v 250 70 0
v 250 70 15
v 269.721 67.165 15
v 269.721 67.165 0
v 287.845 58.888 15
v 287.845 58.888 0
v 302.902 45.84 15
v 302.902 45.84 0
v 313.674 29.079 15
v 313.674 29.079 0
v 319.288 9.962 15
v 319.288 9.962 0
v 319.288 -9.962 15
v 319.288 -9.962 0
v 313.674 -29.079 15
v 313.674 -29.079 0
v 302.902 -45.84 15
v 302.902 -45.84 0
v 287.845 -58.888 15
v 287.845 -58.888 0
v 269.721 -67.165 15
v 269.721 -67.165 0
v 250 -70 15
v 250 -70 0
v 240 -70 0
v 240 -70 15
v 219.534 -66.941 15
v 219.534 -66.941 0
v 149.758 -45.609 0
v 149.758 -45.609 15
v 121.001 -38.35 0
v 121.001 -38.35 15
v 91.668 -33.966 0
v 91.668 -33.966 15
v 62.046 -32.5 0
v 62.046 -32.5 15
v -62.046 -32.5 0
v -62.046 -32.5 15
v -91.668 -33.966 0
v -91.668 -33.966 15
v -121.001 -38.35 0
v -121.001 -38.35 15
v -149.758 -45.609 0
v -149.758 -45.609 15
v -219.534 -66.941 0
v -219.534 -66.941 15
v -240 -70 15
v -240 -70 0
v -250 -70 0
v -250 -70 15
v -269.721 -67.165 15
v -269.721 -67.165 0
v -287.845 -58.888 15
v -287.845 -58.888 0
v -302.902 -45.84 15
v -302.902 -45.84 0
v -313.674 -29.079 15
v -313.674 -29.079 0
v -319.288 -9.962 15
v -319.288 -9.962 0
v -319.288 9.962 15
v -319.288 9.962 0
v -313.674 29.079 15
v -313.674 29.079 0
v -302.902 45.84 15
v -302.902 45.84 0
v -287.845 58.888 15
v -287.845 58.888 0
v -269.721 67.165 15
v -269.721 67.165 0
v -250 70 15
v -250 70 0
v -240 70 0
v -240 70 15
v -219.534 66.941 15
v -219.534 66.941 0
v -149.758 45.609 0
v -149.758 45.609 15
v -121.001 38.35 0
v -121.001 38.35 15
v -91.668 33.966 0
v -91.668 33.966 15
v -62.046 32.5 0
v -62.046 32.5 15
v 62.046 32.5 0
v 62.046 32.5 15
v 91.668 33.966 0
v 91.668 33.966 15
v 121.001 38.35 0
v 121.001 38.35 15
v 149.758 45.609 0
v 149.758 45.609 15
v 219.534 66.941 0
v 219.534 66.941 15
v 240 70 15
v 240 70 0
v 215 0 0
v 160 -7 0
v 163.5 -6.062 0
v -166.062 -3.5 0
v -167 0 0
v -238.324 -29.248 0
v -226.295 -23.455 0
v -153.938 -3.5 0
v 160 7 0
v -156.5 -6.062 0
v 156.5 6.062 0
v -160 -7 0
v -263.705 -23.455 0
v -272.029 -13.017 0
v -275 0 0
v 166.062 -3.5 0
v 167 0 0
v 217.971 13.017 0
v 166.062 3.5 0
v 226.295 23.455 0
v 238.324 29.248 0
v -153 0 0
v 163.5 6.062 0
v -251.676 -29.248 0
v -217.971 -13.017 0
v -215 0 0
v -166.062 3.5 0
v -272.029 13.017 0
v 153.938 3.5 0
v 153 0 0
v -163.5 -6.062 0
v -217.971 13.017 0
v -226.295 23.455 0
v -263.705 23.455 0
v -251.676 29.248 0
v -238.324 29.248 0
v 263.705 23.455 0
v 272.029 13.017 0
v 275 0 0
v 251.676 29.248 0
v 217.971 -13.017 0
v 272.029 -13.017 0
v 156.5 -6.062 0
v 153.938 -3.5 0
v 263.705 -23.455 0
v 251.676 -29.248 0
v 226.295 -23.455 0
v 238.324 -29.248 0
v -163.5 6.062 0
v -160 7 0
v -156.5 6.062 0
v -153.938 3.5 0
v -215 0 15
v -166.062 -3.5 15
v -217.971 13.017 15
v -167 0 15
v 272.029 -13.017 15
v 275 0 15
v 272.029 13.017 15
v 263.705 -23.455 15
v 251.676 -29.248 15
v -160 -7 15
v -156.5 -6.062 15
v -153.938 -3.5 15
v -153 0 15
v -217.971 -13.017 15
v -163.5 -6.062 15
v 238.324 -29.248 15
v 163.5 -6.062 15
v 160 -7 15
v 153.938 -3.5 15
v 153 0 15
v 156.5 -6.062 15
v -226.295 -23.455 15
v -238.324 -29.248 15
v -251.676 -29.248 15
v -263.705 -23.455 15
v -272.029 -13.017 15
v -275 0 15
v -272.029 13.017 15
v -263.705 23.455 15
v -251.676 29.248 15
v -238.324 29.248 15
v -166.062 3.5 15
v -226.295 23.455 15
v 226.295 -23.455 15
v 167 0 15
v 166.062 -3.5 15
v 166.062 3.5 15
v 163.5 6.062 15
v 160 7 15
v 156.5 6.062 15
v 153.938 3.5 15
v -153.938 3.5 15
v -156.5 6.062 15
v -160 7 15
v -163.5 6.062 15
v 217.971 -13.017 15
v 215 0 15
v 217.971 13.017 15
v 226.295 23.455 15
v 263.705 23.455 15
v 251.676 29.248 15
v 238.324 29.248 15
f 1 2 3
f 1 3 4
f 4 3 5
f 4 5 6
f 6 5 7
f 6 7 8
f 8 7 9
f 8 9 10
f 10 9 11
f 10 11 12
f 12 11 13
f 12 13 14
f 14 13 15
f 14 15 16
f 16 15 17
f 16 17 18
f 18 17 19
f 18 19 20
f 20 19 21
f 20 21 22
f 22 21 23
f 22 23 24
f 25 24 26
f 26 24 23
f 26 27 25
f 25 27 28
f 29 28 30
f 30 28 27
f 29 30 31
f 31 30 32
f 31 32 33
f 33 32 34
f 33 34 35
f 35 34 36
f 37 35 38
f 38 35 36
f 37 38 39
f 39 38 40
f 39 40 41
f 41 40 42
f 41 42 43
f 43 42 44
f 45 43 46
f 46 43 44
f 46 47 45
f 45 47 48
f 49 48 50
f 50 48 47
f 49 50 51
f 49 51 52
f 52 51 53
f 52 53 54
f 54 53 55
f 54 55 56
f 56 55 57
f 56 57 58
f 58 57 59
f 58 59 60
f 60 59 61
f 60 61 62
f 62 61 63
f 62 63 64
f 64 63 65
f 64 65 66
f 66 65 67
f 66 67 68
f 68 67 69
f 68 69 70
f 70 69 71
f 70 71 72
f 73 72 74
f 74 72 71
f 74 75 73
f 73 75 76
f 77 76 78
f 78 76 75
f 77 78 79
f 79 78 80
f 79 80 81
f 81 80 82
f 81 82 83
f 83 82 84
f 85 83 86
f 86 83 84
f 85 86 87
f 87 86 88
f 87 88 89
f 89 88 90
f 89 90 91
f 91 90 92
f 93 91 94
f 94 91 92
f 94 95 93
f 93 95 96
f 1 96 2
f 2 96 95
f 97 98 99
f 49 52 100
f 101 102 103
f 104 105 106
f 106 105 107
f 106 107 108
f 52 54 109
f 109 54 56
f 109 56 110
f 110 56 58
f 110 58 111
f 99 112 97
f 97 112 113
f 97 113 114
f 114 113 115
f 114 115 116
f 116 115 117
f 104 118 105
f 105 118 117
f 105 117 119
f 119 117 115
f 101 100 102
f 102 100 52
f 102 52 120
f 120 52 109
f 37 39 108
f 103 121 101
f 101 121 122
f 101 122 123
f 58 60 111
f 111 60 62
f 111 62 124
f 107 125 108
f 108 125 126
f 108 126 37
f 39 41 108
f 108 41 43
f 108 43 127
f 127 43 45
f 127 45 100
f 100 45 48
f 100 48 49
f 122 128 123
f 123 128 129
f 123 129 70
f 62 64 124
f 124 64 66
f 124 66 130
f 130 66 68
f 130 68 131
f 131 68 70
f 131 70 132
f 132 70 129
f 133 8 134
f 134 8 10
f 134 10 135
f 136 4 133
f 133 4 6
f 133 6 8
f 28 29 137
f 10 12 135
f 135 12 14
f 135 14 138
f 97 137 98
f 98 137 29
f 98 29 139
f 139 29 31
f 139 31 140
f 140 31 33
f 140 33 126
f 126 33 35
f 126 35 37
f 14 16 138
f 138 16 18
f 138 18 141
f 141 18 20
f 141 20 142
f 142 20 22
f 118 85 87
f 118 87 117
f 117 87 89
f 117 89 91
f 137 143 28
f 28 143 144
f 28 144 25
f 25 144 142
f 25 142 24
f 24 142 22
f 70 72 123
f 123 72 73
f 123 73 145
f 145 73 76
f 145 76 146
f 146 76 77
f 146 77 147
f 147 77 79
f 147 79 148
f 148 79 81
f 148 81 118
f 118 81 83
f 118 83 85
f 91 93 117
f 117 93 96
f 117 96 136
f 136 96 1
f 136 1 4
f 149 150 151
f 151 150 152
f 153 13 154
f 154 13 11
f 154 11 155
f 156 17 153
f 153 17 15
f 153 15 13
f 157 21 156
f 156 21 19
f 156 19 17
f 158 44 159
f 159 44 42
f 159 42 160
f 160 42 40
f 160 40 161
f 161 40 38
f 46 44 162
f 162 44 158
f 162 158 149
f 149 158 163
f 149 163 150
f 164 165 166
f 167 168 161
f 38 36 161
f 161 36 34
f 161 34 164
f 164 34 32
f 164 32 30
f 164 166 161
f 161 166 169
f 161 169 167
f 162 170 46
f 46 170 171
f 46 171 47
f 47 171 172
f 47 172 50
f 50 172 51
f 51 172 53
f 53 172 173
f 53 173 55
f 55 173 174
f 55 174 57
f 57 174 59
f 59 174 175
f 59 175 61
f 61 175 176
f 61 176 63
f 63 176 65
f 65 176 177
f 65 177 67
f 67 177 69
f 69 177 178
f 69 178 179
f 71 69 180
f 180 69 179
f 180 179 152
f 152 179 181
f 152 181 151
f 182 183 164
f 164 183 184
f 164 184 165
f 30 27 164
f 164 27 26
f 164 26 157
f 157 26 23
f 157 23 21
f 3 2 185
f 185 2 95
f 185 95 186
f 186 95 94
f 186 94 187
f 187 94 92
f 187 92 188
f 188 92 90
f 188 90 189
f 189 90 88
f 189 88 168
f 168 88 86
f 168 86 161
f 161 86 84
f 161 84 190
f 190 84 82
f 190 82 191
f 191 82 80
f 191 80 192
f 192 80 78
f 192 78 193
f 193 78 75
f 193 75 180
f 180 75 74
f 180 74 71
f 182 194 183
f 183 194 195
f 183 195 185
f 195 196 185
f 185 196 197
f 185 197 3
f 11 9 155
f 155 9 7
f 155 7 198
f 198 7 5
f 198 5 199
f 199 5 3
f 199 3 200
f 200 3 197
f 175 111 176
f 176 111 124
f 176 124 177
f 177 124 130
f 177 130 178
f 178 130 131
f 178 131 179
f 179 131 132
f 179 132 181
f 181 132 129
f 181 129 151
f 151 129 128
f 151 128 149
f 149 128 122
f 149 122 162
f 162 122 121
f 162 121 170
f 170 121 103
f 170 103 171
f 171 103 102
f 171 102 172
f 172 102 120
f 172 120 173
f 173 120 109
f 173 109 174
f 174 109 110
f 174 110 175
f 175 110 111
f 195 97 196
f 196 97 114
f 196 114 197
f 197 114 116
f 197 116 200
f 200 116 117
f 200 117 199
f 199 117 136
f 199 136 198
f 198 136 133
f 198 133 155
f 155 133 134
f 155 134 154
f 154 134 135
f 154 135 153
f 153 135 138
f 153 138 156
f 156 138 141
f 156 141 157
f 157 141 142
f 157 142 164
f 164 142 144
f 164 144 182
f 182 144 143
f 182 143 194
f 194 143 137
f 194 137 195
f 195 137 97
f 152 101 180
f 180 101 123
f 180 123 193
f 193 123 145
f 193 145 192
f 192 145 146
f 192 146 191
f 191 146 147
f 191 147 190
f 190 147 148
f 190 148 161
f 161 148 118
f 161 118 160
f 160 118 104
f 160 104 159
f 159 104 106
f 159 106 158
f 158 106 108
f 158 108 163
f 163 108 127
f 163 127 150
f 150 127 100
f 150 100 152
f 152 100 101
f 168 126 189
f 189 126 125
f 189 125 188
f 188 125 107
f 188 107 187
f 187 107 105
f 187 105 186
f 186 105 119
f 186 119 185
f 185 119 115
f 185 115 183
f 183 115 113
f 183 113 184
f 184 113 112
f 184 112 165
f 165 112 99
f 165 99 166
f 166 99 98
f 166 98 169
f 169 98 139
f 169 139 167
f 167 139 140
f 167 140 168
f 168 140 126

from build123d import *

# Parameters (mm, degrees)
EXTRUDE1_DEPTH         = 15
SKETCH2_R              = 30
F_60_UDBORINGER_DEPTH  = 16
SKETCH3_R              = 7
M16_GEVINDHULLER_DEPTH = 16


with BuildPart() as part:
    # Sketch1 → Extrude1 (new body)
    with BuildSketch(Plane.XY):
        with BuildLine():
            Line((-250, 70), (-240, 70))
            ThreePointArc((-240, 70), (-229.653341221, 69.231110435), (-219.533980669, 66.941332917))
            Line((-219.533980669, 66.941332917), (-149.757667724, 45.608573211))
            ThreePointArc((-149.757667724, 45.608573211), (-106.388979647, 35.795240991), (-62.046156308, 32.5))
            Line((-62.046156308, 32.5), (62.046156308, 32.5))
            ThreePointArc((62.046156308, 32.5), (106.388979647, 35.795240991), (149.757667724, 45.608573211))
            Line((149.757667724, 45.608573211), (219.533980669, 66.941332917))
            ThreePointArc((219.533980669, 66.941332917), (229.653341221, 69.231110435), (240, 70))
            Line((240, 70), (250, 70))
            ThreePointArc((250, 70), (320, 0), (250, -70))
            Line((250, -70), (240, -70))
            ThreePointArc((240, -70), (229.653341221, -69.231110435), (219.533980669, -66.941332917))
            Line((219.533980669, -66.941332917), (149.757667724, -45.608573211))
            ThreePointArc((149.757667724, -45.608573211), (106.388979647, -35.795240991), (62.046156308, -32.5))
            Line((62.046156308, -32.5), (-62.046156308, -32.5))
            ThreePointArc((-62.046156308, -32.5), (-106.388979647, -35.795240991), (-149.757667724, -45.608573211))
            Line((-149.757667724, -45.608573211), (-219.533980669, -66.941332917))
            ThreePointArc((-219.533980669, -66.941332917), (-229.653341221, -69.231110435), (-240, -70))
            Line((-240, -70), (-250, -70))
            ThreePointArc((-250, -70), (-320, 0), (-250, 70))
        make_face()
    extrude(amount=EXTRUDE1_DEPTH)

    # Sketch2 → ø60 udboringer (cut, through all)
    with BuildSketch(Plane.XY.offset(15)):
        with Locations((245, 0)):
            Circle(SKETCH2_R)
        with Locations((-245, 0)):
            Circle(SKETCH2_R)
    extrude(amount=-F_60_UDBORINGER_DEPTH, mode=Mode.SUBTRACT)

    # Sketch3 → M16 gevindhuller (cut, through all)
    with BuildSketch(Plane.XY.offset(15)):
        with Locations((160, 0)):
            Circle(SKETCH3_R)
        with Locations((-160, 0)):
            Circle(SKETCH3_R)
    extrude(amount=-M16_GEVINDHULLER_DEPTH, mode=Mode.SUBTRACT)


solid = part.part
